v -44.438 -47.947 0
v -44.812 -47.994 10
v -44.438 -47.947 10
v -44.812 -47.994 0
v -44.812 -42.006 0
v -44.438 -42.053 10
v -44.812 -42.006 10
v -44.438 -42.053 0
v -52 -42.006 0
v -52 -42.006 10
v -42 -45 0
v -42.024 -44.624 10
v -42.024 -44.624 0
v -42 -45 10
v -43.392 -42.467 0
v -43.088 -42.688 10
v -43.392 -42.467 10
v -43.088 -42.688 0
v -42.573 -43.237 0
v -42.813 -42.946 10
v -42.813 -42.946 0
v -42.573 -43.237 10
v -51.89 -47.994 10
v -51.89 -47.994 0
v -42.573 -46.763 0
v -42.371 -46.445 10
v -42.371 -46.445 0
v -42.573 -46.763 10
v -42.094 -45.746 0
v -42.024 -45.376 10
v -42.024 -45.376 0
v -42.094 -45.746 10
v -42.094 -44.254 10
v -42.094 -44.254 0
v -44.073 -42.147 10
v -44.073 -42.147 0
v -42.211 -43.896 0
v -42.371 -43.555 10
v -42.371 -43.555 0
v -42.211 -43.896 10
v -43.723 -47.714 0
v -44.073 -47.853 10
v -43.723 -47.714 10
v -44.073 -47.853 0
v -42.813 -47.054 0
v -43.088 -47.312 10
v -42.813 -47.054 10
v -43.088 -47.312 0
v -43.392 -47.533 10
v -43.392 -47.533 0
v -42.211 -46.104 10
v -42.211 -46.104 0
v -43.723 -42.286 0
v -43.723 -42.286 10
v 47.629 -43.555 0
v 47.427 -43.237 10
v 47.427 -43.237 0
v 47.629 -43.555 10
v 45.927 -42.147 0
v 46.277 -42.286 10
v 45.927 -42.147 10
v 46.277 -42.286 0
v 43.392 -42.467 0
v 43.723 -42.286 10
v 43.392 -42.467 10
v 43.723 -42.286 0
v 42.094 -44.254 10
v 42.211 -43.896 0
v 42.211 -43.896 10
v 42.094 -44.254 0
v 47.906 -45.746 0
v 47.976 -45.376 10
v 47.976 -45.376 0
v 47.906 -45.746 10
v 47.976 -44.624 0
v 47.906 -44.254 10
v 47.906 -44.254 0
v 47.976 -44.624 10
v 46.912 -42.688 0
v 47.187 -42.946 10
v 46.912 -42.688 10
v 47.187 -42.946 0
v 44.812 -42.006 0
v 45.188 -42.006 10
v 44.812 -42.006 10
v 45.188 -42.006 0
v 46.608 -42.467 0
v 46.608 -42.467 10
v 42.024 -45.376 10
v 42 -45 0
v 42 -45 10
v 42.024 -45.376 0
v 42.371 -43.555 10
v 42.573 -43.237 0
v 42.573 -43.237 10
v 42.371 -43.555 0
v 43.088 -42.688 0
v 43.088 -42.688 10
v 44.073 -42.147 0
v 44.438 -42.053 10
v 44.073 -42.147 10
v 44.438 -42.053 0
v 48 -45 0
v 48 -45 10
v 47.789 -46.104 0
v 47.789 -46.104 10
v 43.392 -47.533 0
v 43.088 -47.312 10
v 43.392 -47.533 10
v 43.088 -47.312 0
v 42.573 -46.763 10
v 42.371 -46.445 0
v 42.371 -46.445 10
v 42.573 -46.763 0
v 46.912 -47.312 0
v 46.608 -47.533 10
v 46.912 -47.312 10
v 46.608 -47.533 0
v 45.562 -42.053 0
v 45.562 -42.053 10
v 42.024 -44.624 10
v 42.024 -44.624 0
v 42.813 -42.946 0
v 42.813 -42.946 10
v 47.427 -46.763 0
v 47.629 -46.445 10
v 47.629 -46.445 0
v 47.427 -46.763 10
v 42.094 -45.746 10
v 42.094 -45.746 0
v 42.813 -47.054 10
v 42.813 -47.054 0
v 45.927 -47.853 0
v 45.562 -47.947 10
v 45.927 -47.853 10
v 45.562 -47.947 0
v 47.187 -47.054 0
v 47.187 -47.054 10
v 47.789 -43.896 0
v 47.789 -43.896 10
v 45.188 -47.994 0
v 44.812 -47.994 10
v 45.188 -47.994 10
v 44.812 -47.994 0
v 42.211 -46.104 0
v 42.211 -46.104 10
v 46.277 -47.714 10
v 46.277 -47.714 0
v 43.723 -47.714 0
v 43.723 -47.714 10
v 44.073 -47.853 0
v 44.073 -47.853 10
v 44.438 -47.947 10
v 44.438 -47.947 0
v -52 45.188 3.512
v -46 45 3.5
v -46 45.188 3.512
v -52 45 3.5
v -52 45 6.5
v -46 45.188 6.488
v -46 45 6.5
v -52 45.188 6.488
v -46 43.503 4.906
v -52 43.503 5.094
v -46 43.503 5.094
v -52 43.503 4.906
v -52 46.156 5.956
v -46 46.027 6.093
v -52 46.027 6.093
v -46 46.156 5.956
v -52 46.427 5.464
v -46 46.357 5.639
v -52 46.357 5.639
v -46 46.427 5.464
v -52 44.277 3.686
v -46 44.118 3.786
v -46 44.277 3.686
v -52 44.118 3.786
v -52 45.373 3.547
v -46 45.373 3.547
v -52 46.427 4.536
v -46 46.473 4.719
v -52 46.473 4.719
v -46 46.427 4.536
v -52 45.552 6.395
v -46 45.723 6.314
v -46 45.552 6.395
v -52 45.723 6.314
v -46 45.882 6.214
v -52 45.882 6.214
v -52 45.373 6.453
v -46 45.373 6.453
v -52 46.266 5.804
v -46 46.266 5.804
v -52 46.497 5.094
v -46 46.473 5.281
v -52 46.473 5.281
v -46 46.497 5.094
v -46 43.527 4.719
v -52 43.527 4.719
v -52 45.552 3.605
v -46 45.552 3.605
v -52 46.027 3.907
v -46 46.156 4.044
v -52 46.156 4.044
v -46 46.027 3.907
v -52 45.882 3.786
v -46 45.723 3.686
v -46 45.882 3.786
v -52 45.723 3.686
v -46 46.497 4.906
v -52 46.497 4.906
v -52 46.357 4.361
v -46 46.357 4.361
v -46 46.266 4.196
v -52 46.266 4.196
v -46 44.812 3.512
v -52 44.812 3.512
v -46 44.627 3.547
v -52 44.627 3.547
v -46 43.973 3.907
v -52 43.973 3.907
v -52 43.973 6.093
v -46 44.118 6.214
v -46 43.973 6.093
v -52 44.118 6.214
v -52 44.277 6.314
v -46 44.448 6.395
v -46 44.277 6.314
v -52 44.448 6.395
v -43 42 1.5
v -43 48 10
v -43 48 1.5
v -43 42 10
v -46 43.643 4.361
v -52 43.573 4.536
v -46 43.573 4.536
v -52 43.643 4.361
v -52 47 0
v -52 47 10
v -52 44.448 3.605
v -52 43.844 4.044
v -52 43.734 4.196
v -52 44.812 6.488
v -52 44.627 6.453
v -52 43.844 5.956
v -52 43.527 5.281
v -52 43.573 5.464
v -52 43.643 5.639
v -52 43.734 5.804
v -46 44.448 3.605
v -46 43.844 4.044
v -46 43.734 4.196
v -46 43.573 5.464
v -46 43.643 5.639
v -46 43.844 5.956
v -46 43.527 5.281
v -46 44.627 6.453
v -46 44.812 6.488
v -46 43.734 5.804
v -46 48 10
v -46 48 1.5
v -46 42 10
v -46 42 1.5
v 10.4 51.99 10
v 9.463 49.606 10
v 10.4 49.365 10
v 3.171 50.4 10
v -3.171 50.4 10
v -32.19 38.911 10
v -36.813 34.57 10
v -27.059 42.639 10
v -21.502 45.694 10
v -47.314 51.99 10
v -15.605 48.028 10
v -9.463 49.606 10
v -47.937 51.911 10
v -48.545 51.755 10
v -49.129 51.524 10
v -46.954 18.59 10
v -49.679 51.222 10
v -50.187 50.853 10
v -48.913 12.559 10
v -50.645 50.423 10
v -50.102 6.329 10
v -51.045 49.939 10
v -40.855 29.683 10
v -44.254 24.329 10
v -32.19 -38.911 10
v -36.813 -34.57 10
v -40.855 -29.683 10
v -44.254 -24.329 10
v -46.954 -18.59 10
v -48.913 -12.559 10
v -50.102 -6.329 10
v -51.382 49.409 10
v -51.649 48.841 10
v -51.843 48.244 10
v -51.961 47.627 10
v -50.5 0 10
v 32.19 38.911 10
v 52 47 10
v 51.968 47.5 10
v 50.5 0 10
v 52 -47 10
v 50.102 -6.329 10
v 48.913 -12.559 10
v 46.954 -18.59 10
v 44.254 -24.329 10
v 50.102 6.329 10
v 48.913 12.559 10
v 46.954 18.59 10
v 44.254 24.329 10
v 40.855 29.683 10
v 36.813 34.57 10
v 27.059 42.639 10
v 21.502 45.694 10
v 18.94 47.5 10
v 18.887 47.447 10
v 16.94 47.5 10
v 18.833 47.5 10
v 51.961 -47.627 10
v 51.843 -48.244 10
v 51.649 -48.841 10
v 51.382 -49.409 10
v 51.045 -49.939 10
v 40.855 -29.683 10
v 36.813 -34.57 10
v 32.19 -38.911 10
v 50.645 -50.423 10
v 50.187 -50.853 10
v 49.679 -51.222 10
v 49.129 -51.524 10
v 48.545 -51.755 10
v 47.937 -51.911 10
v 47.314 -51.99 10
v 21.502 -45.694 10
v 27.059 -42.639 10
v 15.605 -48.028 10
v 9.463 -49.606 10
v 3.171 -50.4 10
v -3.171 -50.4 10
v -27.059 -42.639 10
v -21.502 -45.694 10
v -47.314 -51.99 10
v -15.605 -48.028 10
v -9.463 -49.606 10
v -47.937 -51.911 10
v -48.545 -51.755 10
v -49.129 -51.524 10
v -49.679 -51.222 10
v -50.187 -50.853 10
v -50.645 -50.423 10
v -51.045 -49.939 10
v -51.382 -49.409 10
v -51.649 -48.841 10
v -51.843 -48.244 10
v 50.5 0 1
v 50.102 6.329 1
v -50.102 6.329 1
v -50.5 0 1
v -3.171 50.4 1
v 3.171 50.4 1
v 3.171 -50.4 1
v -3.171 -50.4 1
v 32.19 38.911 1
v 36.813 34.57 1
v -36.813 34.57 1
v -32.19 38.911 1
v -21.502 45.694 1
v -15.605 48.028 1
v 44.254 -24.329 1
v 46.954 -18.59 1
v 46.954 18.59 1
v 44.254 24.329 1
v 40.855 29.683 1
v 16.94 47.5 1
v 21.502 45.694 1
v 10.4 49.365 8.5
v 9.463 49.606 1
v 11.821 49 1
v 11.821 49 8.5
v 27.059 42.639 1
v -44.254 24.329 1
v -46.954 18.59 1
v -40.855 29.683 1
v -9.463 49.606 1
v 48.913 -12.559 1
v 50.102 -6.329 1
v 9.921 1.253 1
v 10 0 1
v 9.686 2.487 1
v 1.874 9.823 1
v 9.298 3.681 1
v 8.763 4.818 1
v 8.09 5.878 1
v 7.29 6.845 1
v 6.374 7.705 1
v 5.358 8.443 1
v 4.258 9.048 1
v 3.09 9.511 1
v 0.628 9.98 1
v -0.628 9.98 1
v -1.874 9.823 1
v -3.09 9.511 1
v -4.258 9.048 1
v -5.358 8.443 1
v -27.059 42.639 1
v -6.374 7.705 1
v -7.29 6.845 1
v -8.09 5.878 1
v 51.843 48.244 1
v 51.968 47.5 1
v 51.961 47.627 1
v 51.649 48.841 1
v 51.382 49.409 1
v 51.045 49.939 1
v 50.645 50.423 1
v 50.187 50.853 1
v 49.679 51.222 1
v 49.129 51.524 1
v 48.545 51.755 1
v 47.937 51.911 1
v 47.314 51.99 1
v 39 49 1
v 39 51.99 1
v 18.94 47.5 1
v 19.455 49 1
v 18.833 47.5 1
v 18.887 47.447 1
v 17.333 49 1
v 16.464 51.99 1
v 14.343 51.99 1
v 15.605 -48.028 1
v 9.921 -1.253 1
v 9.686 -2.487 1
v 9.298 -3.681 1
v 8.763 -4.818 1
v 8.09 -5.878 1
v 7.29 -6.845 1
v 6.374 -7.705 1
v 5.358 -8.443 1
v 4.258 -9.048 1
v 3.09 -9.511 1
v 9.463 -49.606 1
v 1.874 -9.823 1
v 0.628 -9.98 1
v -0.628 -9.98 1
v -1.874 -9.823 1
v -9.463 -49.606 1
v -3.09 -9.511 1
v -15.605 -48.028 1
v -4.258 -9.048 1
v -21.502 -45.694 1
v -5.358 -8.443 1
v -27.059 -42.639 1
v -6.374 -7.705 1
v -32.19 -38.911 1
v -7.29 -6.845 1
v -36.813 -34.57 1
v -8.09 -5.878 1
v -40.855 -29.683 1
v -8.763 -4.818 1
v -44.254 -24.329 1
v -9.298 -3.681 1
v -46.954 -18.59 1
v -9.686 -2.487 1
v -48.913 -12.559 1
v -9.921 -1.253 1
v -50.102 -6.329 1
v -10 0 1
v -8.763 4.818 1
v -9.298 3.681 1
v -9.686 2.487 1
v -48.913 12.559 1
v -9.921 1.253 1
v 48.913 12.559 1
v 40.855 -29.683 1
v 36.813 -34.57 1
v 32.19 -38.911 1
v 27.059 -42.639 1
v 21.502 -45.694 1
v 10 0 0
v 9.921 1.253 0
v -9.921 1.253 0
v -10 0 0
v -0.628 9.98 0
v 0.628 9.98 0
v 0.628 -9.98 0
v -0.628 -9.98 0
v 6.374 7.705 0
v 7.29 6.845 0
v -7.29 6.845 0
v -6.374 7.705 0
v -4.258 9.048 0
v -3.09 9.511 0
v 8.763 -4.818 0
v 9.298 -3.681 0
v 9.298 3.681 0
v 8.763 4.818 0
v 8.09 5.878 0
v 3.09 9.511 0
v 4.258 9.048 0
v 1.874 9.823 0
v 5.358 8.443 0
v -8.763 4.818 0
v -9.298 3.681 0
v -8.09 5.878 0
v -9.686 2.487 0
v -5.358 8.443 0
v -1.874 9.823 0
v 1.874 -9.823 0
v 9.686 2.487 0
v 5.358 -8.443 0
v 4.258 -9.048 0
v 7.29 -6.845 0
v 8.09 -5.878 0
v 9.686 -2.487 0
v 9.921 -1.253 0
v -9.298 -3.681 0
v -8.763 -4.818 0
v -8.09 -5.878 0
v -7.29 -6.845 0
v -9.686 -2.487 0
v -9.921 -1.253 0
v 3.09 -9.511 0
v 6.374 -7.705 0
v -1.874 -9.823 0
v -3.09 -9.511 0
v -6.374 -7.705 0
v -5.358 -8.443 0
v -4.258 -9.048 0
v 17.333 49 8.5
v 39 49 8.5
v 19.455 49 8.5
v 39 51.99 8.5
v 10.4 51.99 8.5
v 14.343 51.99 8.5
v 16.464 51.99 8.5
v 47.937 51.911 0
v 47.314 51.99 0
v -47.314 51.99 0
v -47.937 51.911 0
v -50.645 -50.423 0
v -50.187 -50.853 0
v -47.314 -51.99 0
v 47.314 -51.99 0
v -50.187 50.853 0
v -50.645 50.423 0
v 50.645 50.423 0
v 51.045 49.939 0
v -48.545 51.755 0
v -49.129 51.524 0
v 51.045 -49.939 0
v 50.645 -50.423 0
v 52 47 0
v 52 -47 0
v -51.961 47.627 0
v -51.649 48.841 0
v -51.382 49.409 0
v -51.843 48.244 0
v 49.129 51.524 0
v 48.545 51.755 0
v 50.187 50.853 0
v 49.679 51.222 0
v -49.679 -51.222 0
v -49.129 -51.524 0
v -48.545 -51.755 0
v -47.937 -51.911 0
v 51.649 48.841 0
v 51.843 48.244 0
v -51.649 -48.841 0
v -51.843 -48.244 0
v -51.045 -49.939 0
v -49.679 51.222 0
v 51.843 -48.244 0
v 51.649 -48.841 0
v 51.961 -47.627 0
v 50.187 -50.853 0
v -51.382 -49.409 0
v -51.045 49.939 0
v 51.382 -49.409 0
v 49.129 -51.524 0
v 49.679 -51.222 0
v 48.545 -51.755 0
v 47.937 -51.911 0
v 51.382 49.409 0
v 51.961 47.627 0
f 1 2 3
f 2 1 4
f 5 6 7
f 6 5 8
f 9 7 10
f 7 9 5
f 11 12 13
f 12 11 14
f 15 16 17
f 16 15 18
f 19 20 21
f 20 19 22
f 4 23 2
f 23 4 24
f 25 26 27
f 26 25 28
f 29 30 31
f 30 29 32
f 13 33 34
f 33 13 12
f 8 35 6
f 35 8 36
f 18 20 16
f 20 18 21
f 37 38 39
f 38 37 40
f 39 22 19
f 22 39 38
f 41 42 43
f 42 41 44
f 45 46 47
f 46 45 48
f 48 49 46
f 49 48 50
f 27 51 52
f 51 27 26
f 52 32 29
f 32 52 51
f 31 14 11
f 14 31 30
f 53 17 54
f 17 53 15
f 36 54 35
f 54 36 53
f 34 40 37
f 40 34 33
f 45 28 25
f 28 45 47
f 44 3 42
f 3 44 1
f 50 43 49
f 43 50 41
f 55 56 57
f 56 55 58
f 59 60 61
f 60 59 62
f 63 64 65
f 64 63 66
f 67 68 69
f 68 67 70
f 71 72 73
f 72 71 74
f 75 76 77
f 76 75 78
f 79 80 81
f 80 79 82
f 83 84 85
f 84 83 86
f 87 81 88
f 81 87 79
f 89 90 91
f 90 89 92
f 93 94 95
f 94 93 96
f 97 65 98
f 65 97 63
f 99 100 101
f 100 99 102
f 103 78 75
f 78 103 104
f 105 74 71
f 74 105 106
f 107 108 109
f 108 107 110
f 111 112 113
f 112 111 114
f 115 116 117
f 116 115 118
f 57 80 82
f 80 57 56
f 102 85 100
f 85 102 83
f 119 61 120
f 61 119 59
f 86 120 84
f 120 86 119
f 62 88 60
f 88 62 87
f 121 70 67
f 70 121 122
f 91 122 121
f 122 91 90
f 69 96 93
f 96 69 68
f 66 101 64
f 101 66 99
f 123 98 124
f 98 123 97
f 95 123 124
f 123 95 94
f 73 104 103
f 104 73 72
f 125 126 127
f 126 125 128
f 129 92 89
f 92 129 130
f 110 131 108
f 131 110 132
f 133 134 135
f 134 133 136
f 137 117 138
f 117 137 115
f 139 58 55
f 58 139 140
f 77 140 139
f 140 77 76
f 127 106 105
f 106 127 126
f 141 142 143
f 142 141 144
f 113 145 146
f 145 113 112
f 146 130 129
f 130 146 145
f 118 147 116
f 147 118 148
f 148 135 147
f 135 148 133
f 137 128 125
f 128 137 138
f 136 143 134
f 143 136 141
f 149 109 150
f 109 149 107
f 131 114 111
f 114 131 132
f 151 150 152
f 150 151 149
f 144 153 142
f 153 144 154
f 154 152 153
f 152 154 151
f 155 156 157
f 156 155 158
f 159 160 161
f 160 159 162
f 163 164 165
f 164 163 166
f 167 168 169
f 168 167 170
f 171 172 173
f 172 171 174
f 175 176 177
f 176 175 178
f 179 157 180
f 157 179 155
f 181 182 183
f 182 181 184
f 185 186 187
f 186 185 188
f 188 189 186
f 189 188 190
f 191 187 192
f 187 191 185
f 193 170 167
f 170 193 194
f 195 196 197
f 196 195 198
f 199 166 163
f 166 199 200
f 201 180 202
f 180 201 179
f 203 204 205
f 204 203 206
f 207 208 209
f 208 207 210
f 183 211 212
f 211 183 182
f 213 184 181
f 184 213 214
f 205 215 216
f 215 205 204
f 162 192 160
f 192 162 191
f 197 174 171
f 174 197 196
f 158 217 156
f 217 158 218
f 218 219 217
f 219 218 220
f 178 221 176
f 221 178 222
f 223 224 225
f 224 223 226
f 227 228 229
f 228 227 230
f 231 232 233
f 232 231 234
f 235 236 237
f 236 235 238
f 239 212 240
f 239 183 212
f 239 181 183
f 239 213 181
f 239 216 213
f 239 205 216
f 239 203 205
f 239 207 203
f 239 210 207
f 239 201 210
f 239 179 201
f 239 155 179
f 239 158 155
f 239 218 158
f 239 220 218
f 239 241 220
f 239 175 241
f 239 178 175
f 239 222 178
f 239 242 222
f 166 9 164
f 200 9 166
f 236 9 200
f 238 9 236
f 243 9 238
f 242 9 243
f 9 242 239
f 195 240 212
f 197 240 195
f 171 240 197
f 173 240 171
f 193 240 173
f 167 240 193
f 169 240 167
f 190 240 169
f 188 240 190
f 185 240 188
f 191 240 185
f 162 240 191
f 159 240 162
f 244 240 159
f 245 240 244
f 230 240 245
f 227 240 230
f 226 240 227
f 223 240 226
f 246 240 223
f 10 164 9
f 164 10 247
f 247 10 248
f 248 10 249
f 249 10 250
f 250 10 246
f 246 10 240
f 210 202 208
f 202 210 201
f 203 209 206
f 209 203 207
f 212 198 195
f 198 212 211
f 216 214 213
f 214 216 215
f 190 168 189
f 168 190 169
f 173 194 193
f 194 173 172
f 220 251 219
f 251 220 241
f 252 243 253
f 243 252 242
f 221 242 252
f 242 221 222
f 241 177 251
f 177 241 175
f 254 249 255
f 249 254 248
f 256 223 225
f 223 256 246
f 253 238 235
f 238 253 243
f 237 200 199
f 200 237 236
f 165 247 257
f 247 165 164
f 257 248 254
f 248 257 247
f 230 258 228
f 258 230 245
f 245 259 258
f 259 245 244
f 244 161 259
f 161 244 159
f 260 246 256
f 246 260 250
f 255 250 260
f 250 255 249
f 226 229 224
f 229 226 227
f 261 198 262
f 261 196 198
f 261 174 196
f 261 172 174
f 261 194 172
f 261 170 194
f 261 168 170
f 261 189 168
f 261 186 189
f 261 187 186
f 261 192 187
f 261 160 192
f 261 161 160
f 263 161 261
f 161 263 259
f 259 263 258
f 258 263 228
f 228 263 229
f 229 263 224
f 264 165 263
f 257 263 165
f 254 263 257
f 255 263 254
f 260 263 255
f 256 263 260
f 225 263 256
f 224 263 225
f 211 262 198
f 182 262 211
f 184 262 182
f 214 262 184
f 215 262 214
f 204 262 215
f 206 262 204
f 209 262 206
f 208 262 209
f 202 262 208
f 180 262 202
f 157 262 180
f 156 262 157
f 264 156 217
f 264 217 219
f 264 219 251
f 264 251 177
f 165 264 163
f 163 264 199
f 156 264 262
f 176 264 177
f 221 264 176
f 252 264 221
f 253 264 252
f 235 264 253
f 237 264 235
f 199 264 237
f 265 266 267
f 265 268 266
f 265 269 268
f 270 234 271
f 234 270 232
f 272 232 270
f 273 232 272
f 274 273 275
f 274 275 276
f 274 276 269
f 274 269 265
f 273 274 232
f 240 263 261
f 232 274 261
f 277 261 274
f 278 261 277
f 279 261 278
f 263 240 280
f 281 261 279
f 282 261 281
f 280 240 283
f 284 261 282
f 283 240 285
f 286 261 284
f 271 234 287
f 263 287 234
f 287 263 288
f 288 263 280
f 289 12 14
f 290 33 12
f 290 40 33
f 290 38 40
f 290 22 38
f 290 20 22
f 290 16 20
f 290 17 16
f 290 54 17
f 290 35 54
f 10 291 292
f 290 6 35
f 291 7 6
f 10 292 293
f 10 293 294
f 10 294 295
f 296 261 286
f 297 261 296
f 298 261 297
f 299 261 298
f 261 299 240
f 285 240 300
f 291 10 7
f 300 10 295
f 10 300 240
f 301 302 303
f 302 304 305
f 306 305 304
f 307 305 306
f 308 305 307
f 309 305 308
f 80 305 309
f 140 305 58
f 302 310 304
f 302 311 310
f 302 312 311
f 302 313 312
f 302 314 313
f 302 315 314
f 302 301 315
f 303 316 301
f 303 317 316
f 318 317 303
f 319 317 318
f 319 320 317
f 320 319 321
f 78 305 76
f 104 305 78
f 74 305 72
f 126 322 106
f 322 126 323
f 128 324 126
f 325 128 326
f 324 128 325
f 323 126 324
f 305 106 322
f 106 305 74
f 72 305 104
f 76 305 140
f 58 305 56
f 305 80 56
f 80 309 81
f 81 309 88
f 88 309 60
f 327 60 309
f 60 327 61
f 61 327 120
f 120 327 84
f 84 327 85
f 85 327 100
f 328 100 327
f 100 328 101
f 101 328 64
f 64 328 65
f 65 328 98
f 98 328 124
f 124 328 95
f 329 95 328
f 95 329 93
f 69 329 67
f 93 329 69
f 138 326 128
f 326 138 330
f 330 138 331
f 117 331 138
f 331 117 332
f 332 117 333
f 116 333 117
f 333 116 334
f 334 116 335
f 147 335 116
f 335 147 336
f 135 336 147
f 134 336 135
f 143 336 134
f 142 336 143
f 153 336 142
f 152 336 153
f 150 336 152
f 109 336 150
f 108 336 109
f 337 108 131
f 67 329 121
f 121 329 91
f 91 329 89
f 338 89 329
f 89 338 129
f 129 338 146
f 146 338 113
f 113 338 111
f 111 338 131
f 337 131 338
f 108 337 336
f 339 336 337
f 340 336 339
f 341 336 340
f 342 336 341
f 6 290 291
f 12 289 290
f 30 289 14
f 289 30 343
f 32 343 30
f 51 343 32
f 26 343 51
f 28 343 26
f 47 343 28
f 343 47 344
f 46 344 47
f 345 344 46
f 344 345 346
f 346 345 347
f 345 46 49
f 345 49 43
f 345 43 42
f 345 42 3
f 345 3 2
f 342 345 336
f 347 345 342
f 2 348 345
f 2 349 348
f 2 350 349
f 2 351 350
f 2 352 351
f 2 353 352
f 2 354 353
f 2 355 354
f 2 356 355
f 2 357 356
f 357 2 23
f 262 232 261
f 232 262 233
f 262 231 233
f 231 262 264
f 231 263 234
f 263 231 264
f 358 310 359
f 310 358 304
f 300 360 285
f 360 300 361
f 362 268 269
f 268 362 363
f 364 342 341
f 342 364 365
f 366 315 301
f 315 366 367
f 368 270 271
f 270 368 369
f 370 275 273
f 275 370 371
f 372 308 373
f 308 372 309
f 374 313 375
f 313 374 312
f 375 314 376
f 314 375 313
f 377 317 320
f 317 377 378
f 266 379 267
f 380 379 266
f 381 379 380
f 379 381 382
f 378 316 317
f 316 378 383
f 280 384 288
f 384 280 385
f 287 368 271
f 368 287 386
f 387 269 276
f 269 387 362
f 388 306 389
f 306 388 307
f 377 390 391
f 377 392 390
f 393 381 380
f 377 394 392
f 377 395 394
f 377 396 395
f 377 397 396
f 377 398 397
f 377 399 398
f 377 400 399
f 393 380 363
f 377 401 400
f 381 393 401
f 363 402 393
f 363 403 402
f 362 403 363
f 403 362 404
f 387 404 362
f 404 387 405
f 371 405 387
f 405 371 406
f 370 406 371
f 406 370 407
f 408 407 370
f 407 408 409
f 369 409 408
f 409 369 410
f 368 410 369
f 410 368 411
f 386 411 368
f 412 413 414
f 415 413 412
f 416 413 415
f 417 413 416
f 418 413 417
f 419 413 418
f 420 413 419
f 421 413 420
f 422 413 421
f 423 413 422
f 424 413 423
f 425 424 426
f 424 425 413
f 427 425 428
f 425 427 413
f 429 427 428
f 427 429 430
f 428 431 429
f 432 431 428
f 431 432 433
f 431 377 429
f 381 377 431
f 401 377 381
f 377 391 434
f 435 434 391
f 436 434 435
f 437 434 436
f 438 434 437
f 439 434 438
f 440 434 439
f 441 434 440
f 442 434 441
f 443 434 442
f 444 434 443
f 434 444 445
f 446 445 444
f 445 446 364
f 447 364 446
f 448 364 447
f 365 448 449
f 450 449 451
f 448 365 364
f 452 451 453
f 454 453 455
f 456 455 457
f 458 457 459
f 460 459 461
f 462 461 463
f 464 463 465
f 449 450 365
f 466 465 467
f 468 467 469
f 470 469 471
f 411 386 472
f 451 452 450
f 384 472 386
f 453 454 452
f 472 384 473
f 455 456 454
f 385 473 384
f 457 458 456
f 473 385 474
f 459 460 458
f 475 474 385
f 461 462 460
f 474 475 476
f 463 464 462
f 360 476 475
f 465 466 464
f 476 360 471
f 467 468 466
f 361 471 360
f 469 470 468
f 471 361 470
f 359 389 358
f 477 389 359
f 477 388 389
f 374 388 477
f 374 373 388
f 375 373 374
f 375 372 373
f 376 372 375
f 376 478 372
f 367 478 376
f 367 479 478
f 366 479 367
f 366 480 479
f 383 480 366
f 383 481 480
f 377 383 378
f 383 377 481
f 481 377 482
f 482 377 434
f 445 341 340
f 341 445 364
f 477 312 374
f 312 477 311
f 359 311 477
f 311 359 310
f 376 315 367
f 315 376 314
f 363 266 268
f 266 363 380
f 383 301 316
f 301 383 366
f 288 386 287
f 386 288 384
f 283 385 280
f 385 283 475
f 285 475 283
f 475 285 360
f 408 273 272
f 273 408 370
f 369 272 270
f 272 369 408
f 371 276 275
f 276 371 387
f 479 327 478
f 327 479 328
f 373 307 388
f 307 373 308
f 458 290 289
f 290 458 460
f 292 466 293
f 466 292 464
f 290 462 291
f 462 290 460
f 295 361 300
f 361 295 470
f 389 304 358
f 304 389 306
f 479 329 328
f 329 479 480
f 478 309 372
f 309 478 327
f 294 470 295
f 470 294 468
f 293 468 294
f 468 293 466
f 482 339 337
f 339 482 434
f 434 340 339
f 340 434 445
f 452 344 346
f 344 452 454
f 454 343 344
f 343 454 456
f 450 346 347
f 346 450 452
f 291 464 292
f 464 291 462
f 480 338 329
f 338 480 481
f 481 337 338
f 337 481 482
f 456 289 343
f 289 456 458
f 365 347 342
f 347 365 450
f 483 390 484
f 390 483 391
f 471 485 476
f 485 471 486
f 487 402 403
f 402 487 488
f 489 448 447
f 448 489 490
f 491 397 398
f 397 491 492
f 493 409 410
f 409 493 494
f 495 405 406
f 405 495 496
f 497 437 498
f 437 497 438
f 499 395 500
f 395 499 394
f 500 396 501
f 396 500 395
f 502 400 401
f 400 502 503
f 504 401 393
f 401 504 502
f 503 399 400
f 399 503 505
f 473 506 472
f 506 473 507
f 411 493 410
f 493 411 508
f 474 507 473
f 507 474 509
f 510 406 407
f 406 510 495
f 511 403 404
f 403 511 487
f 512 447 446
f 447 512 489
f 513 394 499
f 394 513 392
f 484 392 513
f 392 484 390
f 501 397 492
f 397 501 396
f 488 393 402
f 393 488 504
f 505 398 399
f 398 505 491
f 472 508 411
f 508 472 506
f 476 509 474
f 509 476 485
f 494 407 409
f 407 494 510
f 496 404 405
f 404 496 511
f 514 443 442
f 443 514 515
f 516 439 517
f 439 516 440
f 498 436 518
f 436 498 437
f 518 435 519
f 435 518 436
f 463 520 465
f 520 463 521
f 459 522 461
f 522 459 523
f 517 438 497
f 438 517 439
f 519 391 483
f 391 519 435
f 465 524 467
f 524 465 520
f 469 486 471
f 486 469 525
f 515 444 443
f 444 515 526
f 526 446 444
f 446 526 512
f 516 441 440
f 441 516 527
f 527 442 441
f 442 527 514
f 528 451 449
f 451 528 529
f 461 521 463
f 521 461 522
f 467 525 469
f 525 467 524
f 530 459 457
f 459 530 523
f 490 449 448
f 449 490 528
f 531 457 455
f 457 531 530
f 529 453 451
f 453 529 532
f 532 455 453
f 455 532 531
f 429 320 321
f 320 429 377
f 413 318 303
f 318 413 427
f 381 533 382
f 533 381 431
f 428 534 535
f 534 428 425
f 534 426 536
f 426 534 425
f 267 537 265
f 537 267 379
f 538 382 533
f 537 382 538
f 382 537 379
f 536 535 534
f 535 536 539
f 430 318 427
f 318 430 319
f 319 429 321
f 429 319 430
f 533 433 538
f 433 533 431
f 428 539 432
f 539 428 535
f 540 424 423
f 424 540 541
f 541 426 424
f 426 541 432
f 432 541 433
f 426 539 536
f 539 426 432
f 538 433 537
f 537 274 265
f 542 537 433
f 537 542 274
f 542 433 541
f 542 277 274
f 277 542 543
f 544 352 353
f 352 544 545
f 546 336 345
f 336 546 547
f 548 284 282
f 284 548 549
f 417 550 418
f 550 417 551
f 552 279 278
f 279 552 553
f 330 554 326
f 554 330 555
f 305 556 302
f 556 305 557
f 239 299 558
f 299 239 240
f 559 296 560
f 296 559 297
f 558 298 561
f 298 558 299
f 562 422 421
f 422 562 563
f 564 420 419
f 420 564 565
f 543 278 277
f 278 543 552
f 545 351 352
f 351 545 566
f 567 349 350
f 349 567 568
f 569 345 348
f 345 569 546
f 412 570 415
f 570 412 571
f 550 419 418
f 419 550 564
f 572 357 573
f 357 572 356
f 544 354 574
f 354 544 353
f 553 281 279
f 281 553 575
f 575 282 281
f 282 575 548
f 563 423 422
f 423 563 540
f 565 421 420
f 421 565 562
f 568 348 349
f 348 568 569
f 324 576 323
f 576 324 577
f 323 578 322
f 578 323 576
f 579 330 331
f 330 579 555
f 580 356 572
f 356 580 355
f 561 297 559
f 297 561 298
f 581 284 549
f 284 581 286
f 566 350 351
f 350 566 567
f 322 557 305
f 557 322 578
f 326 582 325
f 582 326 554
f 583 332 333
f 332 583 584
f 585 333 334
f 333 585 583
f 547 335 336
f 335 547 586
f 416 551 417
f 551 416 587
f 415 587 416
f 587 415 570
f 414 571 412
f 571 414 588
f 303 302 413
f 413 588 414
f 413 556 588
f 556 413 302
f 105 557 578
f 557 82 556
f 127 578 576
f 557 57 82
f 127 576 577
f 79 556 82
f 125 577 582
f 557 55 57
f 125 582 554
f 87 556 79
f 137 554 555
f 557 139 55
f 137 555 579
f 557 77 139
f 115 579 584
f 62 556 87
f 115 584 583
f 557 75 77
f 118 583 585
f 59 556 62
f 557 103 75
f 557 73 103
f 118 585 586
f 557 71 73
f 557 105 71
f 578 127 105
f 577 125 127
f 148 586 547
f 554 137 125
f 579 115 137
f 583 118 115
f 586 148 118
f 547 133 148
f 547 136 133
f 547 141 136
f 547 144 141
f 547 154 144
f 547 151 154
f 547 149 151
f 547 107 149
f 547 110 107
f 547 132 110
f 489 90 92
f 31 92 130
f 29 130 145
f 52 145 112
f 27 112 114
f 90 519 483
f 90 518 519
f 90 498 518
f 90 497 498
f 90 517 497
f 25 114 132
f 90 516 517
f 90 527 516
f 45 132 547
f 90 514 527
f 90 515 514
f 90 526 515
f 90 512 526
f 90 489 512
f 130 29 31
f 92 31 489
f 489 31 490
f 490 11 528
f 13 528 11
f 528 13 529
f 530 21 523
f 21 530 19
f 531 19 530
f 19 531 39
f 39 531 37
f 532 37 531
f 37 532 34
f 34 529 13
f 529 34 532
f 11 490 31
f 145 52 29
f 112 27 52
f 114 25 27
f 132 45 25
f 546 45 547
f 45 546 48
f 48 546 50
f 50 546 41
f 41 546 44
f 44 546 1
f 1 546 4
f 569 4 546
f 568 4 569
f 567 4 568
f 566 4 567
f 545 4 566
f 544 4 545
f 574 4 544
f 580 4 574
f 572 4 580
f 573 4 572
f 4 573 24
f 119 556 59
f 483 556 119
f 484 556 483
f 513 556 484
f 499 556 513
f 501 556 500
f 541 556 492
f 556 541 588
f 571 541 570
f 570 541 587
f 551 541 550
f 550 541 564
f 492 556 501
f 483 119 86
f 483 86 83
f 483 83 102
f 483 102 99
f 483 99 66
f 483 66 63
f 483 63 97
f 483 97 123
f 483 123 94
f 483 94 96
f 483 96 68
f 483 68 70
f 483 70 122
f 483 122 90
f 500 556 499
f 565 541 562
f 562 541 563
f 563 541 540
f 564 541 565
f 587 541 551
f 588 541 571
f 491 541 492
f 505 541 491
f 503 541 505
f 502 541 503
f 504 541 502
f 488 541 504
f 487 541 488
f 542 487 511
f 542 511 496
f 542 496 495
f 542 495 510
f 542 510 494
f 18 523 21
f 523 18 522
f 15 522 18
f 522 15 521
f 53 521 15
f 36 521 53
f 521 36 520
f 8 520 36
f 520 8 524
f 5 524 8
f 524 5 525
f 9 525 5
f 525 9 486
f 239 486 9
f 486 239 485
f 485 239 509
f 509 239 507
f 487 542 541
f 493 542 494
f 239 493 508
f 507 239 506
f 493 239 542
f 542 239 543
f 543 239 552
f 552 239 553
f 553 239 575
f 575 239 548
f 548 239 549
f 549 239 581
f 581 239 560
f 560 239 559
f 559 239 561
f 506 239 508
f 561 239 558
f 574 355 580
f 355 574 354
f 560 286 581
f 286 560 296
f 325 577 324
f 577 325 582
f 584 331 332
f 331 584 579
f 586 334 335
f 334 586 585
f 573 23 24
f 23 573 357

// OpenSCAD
$fn = 50;


difference() {
	union() {
		translate(v = [0, 0, 0]) {
			rotate(a = [0, 0, 0]) {
				hull() {
					translate(v = [-47.0000000000, 47.0000000000, 0]) {
						rotate(a = [0, 0, 0]) {
							translate(v = [0, 0, 0]) {
								rotate(a = [0, 0, 0]) {
									cylinder(h = 10, r = 5);
								}
							}
						}
					}
					translate(v = [47.0000000000, 47.0000000000, 0]) {
						rotate(a = [0, 0, 0]) {
							translate(v = [0, 0, 0]) {
								rotate(a = [0, 0, 0]) {
									cylinder(h = 10, r = 5);
								}
							}
						}
					}
					translate(v = [-47.0000000000, -47.0000000000, 0]) {
						rotate(a = [0, 0, 0]) {
							translate(v = [0, 0, 0]) {
								rotate(a = [0, 0, 0]) {
									cylinder(h = 10, r = 5);
								}
							}
						}
					}
					translate(v = [47.0000000000, -47.0000000000, 0]) {
						rotate(a = [0, 0, 0]) {
							translate(v = [0, 0, 0]) {
								rotate(a = [0, 0, 0]) {
									cylinder(h = 10, r = 5);
								}
							}
						}
					}
				}
			}
		}
	}
	union() {
		translate(v = [-52.5000000000, -45.0000000000, -125]) {
			rotate(a = [0, 0, 0]) {
				hull() {
					translate(v = [7.5000000000, 0, 0]) {
						rotate(a = [0, 0, 0]) {
							translate(v = [0, 0, 0]) {
								rotate(a = [0, 0, 0]) {
									cylinder(h = 250, r = 3.0000000000);
								}
							}
						}
					}
					translate(v = [-7.5000000000, 0, 0]) {
						rotate(a = [0, 0, 0]) {
							translate(v = [0, 0, 0]) {
								rotate(a = [0, 0, 0]) {
									cylinder(h = 250, r = 3.0000000000);
								}
							}
						}
					}
				}
			}
		}
		translate(v = [45.0000000000, -45.0000000000, -125.0000000000]) {
			rotate(a = [0, 0, 0]) {
				cylinder(h = 250, r = 3.0000000000);
			}
		}
		translate(v = [-52.0000000000, 45.0000000000, 5.0000000000]) {
			rotate(a = [0, 90, 0]) {
				cylinder(h = 9, r = 1.5000000000);
			}
		}
		translate(v = [-46.0000000000, 42.0000000000, 1.5000000000]) {
			rotate(a = [0, 0, 0]) {
				cube(size = [3, 6, 8.5000000000]);
			}
		}
		translate(v = [0, 0, 1.0000000000]) {
			rotate(a = [0, 0, 0]) {
				cylinder(h = 12, r = 50.5000000000);
			}
		}
		translate(v = [0, 0, -5.0000000000]) {
			rotate(a = [0, 0, 0]) {
				cylinder(h = 10, r = 10.0000000000);
			}
		}
		translate(v = [0.0000000000, 47.5000000000, 1]) {
			rotate(a = [0, 0, 0]) {
				cube(size = [52.0000000000, 1.5000000000, 12]);
			}
		}
		translate(v = [39.0000000000, 47.5000000000, 1]) {
			rotate(a = [0, 0, 0]) {
				cube(size = [13.0000000000, 4.5000000000, 12]);
			}
		}
		translate(v = [10.4000000000, 47.5000000000, 8.5000000000]) {
			rotate(a = [0, 0, 0]) {
				cube(size = [41.6000000000, 4.5000000000, 1.5000000000]);
			}
		}
		translate(v = [13.5833333333, 52.7500000000, 1]) {
			rotate(a = [0, 0, -45]) {
				cube(size = [7.5000000000, 1.5000000000, 12]);
			}
		}
	}
}
